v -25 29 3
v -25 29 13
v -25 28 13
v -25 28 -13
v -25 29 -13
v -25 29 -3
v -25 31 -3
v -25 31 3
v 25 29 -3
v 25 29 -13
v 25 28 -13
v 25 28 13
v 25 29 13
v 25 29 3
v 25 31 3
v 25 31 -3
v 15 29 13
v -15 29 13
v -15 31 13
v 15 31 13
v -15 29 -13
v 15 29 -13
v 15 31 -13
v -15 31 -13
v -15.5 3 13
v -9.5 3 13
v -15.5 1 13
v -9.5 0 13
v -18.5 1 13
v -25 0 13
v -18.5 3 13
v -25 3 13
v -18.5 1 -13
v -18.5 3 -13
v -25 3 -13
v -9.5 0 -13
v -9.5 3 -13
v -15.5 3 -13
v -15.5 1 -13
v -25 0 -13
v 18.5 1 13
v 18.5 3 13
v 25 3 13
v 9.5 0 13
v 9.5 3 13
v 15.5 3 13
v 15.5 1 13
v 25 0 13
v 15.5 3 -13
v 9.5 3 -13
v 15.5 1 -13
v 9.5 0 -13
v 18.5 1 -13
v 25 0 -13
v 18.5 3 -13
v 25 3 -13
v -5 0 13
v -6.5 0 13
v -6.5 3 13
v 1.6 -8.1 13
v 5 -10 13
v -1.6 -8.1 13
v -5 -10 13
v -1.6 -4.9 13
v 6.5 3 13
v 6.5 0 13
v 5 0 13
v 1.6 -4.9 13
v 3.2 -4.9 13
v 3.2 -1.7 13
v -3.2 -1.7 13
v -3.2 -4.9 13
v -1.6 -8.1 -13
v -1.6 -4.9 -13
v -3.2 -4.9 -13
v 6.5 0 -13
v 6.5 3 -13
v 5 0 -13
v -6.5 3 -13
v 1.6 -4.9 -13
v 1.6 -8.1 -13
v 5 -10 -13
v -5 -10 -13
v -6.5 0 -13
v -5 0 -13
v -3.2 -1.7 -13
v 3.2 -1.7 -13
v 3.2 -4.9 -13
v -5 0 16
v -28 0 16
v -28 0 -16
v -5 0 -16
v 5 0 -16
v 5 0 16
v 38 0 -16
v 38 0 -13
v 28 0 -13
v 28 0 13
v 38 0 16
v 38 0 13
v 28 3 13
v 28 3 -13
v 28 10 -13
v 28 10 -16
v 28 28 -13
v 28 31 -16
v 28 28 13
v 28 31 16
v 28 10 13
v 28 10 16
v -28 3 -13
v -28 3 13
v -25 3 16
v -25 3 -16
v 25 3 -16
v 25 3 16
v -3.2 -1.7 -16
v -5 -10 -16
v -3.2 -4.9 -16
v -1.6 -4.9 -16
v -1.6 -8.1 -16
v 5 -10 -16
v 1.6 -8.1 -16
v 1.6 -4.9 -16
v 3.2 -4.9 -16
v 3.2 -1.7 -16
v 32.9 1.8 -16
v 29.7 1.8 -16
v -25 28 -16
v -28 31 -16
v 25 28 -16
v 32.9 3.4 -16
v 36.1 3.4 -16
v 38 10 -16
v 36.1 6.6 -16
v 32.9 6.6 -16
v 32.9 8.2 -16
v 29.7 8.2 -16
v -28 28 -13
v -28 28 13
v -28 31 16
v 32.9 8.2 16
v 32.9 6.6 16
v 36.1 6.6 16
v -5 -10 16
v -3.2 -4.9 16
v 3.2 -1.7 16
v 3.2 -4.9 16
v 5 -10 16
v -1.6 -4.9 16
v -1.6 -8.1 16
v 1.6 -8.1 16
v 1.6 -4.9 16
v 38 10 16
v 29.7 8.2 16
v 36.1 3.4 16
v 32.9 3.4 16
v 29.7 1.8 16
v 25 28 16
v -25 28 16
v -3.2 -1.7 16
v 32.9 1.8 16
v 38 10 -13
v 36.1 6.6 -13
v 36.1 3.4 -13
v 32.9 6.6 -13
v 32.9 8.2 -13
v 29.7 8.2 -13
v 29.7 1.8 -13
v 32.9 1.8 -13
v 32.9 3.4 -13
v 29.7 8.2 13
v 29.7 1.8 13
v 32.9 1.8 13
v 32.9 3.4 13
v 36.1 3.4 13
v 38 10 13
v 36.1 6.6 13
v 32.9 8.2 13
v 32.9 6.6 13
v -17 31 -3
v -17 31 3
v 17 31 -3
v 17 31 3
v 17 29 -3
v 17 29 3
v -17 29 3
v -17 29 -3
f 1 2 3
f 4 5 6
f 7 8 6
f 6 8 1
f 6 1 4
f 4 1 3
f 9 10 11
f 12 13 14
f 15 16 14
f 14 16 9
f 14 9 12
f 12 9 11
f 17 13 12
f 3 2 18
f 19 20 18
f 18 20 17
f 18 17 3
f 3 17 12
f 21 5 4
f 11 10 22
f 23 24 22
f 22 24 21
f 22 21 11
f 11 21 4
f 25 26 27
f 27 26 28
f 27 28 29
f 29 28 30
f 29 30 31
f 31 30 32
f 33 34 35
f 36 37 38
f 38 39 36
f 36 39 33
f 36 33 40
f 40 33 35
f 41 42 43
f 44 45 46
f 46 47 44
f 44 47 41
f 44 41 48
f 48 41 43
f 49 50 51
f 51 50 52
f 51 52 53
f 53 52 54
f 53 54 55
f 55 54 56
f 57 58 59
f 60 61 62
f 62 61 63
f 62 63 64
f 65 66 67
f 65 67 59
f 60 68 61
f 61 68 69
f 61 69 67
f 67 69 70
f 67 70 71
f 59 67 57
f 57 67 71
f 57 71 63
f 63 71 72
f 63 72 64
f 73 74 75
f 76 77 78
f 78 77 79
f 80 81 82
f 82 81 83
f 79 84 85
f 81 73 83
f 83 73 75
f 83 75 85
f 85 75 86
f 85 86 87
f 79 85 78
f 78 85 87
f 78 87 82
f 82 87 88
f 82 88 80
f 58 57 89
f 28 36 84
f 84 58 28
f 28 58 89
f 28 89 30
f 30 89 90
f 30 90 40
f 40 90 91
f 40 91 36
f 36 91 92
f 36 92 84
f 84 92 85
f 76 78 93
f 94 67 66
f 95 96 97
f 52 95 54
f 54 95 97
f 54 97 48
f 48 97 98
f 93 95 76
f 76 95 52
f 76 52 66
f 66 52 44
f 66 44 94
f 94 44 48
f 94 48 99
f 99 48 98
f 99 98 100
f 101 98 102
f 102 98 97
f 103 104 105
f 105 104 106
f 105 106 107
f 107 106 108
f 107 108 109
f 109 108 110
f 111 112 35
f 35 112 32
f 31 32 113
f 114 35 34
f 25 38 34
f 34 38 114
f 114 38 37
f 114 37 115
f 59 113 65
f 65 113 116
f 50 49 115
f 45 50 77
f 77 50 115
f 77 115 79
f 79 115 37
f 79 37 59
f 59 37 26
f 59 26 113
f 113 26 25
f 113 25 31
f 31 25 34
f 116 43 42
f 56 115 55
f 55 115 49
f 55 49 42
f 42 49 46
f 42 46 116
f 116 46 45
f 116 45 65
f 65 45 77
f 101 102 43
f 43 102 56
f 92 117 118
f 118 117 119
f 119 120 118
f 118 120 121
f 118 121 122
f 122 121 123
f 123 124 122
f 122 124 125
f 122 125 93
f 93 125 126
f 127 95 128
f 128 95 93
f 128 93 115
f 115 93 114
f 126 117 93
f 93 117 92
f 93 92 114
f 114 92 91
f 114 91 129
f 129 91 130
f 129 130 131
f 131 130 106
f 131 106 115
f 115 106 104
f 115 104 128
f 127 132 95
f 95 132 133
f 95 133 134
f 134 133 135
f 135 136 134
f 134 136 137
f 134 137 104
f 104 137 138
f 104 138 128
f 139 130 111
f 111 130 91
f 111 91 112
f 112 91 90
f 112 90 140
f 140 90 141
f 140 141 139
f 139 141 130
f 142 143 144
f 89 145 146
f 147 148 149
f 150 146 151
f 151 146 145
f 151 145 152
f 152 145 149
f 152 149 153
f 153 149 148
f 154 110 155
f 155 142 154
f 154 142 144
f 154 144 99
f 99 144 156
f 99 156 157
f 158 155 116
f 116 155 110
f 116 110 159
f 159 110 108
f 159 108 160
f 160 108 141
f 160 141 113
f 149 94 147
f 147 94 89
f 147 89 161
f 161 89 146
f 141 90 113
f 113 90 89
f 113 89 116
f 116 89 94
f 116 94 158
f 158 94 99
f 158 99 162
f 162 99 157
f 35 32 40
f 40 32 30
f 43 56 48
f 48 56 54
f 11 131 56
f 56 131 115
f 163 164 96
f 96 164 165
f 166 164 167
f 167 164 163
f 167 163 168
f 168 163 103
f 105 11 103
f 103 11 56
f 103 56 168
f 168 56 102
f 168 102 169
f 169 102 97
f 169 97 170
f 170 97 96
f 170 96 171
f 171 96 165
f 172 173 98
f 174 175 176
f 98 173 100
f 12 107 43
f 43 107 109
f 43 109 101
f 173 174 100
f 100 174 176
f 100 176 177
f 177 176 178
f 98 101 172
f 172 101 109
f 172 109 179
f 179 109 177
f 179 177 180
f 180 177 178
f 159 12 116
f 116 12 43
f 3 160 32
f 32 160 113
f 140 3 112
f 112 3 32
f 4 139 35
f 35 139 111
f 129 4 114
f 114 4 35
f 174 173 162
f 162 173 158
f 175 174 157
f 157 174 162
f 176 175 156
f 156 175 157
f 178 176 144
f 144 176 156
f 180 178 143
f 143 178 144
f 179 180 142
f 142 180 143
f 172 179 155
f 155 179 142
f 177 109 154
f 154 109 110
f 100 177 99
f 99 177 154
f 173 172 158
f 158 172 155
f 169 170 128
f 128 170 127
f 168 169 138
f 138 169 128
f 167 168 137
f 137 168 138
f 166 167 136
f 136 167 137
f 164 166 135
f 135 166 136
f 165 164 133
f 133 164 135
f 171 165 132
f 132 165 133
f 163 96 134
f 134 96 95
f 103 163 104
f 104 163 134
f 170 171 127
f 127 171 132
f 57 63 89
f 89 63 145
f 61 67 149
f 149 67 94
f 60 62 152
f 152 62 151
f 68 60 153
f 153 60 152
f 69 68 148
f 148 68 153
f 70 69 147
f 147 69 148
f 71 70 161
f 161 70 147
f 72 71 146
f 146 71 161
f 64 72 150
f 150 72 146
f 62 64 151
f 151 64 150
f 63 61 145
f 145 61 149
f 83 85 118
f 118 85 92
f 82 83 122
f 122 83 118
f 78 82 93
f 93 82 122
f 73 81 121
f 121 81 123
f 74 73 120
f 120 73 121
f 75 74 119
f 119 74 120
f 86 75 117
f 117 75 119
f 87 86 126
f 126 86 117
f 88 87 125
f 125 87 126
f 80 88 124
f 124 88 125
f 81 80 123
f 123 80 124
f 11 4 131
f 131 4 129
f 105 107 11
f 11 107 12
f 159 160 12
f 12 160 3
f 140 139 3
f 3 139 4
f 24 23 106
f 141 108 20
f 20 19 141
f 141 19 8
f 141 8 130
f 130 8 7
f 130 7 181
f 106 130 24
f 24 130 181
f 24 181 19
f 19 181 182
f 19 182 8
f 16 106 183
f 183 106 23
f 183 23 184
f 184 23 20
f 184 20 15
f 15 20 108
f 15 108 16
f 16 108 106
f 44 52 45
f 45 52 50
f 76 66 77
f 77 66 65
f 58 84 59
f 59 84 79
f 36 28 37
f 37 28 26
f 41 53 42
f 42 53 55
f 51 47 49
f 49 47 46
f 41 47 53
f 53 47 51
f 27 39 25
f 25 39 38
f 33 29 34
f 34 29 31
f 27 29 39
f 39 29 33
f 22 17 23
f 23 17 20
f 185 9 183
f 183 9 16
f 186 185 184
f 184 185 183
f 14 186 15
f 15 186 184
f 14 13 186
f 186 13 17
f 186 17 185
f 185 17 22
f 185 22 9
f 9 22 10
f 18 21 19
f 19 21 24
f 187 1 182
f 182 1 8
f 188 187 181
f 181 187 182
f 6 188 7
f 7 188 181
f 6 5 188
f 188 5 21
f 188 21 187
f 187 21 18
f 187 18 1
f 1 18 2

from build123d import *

# Parameters (mm, degrees)
SKETCH1_W           = 56
SKETCH1_H           = 32
SKETCH1_W_2         = 50
SKETCH1_H_2         = 26
BOSS_EXTRUDE1_DEPTH = 3
SKETCH2_W           = 3
SKETCH2_H           = 3
BOSS_EXTRUDE2_DEPTH = 28
SKETCH3_W           = 10
SKETCH3_H           = 10
BOSS_EXTRUDE3_DEPTH = 3
BOSS_EXTRUDE4_DEPTH = 3
SKETCH6_W           = 56
SKETCH6_H           = 32
SKETCH6_W_2         = 50
SKETCH6_H_2         = 26
BOSS_EXTRUDE5_DEPTH = 3
SKETCH10_W          = 3
SKETCH10_H          = 26
BOSS_EXTRUDE7_DEPTH = 3
SKETCH10_4_W        = 3
SKETCH10_4_H        = 26
BOSS_EXTRUDE8_DEPTH = 2
BOSS_EXTRUDE9_DEPTH = 2


with BuildPart() as part:
    # Sketch1 → Boss-Extrude1 (new body)
    with BuildSketch(Plane(origin=(0, 0, 0), x_dir=(1, 0, 0), z_dir=(0, 1, 0))):
        Rectangle(SKETCH1_W, SKETCH1_H)
        Rectangle(SKETCH1_W_2, SKETCH1_H_2, mode=Mode.SUBTRACT)
    extrude(amount=BOSS_EXTRUDE1_DEPTH)

    # Sketch2 → Boss-Extrude2 (add)
    with BuildSketch(Plane(origin=(0, 0, 0), x_dir=(1, 0, 0), z_dir=(0, 1, 0))):
        with Locations((26.5, 14.5)):
            Rectangle(SKETCH2_W, SKETCH2_H)
        with Locations((26.5, -14.5)):
            Rectangle(SKETCH2_W, SKETCH2_H)
        with Locations((-26.5, -14.5)):
            Rectangle(SKETCH2_W, SKETCH2_H)
        with Locations((-26.5, 14.5)):
            Rectangle(SKETCH2_W, SKETCH2_H)
    extrude(amount=BOSS_EXTRUDE2_DEPTH)

    # Sketch3 → Boss-Extrude3 (add)
    with BuildSketch(Plane.XY.offset(16)):
        with Locations((33, 5)):
            Rectangle(SKETCH3_W, SKETCH3_H)
        Polygon((29.7, 1.8), (29.7, 8.2), (32.9, 8.2), (32.9, 6.6), (36.1, 6.6), (36.1, 3.4), (32.9, 3.4), (32.9, 1.8), align=None, mode=Mode.SUBTRACT)
    boss_extrude3 = extrude(amount=-BOSS_EXTRUDE3_DEPTH)

    # Mirror1: Boss-Extrude3 across plane
    add(boss_extrude3.mirror(Plane.XY))

    # Sketch4 → Boss-Extrude4 (add)
    with BuildSketch(Plane.XY.offset(16)):
        Polygon((5, 0), (0, 0), (-5, 0), (-5, -10), (0, -10), (5, -10), align=None)
        Polygon((1.6, -8.1), (0, -8.1), (-1.6, -8.1), (-1.6, -4.9), (-3.2, -4.9), (-3.2, -1.7), (3.2, -1.7), (3.2, -4.9), (1.6, -4.9), align=None, mode=Mode.SUBTRACT)
    boss_extrude4 = extrude(amount=-BOSS_EXTRUDE4_DEPTH)

    # Mirror2: Boss-Extrude4 across plane
    add(boss_extrude4.mirror(Plane.XY))

    # Sketch6 → Boss-Extrude5 (add)
    with BuildSketch(Plane(origin=(0, 28, 0), x_dir=(1, 0, 0), z_dir=(0, 1, 0))):
        Rectangle(SKETCH6_W, SKETCH6_H)
        Rectangle(SKETCH6_W_2, SKETCH6_H_2, mode=Mode.SUBTRACT)
    extrude(amount=BOSS_EXTRUDE5_DEPTH)

    # Sketch10 → Boss-Extrude7 (add)
    with BuildSketch(Plane(origin=(0, 3, 0), x_dir=(1, 0, 0), z_dir=(0, 1, 0))):
        with Locations((-8, 0)):
            Rectangle(SKETCH10_W, SKETCH10_H)
        with Locations((8, 0)):
            Rectangle(SKETCH10_W, SKETCH10_H)
    extrude(amount=-BOSS_EXTRUDE7_DEPTH)

    # Sketch10<4> → Boss-Extrude8 (add)
    with BuildSketch(Plane(origin=(0, 3, 0), x_dir=(1, 0, 0), z_dir=(0, 1, 0))):
        with Locations((-17, 0)):
            Rectangle(SKETCH10_4_W, SKETCH10_4_H)
        with Locations((17, 0)):
            Rectangle(SKETCH10_4_W, SKETCH10_4_H)
    extrude(amount=-BOSS_EXTRUDE8_DEPTH)

    # Sketch11 → Boss-Extrude9 (add)
    with BuildSketch(Plane(origin=(0, 31, 0), x_dir=(1, 0, 0), z_dir=(0, 1, 0))):
        Polygon((-25, -3), (-25, -13), (-15, -13), (-15, 13), (-25, 13), (-25, 3), (-17, 3), (-17, -3), align=None)
        Polygon((15, -13), (25, -13), (25, -3), (17, -3), (17, 3), (25, 3), (25, 13), (15, 13), align=None)
    extrude(amount=-BOSS_EXTRUDE9_DEPTH)


solid = part.part
